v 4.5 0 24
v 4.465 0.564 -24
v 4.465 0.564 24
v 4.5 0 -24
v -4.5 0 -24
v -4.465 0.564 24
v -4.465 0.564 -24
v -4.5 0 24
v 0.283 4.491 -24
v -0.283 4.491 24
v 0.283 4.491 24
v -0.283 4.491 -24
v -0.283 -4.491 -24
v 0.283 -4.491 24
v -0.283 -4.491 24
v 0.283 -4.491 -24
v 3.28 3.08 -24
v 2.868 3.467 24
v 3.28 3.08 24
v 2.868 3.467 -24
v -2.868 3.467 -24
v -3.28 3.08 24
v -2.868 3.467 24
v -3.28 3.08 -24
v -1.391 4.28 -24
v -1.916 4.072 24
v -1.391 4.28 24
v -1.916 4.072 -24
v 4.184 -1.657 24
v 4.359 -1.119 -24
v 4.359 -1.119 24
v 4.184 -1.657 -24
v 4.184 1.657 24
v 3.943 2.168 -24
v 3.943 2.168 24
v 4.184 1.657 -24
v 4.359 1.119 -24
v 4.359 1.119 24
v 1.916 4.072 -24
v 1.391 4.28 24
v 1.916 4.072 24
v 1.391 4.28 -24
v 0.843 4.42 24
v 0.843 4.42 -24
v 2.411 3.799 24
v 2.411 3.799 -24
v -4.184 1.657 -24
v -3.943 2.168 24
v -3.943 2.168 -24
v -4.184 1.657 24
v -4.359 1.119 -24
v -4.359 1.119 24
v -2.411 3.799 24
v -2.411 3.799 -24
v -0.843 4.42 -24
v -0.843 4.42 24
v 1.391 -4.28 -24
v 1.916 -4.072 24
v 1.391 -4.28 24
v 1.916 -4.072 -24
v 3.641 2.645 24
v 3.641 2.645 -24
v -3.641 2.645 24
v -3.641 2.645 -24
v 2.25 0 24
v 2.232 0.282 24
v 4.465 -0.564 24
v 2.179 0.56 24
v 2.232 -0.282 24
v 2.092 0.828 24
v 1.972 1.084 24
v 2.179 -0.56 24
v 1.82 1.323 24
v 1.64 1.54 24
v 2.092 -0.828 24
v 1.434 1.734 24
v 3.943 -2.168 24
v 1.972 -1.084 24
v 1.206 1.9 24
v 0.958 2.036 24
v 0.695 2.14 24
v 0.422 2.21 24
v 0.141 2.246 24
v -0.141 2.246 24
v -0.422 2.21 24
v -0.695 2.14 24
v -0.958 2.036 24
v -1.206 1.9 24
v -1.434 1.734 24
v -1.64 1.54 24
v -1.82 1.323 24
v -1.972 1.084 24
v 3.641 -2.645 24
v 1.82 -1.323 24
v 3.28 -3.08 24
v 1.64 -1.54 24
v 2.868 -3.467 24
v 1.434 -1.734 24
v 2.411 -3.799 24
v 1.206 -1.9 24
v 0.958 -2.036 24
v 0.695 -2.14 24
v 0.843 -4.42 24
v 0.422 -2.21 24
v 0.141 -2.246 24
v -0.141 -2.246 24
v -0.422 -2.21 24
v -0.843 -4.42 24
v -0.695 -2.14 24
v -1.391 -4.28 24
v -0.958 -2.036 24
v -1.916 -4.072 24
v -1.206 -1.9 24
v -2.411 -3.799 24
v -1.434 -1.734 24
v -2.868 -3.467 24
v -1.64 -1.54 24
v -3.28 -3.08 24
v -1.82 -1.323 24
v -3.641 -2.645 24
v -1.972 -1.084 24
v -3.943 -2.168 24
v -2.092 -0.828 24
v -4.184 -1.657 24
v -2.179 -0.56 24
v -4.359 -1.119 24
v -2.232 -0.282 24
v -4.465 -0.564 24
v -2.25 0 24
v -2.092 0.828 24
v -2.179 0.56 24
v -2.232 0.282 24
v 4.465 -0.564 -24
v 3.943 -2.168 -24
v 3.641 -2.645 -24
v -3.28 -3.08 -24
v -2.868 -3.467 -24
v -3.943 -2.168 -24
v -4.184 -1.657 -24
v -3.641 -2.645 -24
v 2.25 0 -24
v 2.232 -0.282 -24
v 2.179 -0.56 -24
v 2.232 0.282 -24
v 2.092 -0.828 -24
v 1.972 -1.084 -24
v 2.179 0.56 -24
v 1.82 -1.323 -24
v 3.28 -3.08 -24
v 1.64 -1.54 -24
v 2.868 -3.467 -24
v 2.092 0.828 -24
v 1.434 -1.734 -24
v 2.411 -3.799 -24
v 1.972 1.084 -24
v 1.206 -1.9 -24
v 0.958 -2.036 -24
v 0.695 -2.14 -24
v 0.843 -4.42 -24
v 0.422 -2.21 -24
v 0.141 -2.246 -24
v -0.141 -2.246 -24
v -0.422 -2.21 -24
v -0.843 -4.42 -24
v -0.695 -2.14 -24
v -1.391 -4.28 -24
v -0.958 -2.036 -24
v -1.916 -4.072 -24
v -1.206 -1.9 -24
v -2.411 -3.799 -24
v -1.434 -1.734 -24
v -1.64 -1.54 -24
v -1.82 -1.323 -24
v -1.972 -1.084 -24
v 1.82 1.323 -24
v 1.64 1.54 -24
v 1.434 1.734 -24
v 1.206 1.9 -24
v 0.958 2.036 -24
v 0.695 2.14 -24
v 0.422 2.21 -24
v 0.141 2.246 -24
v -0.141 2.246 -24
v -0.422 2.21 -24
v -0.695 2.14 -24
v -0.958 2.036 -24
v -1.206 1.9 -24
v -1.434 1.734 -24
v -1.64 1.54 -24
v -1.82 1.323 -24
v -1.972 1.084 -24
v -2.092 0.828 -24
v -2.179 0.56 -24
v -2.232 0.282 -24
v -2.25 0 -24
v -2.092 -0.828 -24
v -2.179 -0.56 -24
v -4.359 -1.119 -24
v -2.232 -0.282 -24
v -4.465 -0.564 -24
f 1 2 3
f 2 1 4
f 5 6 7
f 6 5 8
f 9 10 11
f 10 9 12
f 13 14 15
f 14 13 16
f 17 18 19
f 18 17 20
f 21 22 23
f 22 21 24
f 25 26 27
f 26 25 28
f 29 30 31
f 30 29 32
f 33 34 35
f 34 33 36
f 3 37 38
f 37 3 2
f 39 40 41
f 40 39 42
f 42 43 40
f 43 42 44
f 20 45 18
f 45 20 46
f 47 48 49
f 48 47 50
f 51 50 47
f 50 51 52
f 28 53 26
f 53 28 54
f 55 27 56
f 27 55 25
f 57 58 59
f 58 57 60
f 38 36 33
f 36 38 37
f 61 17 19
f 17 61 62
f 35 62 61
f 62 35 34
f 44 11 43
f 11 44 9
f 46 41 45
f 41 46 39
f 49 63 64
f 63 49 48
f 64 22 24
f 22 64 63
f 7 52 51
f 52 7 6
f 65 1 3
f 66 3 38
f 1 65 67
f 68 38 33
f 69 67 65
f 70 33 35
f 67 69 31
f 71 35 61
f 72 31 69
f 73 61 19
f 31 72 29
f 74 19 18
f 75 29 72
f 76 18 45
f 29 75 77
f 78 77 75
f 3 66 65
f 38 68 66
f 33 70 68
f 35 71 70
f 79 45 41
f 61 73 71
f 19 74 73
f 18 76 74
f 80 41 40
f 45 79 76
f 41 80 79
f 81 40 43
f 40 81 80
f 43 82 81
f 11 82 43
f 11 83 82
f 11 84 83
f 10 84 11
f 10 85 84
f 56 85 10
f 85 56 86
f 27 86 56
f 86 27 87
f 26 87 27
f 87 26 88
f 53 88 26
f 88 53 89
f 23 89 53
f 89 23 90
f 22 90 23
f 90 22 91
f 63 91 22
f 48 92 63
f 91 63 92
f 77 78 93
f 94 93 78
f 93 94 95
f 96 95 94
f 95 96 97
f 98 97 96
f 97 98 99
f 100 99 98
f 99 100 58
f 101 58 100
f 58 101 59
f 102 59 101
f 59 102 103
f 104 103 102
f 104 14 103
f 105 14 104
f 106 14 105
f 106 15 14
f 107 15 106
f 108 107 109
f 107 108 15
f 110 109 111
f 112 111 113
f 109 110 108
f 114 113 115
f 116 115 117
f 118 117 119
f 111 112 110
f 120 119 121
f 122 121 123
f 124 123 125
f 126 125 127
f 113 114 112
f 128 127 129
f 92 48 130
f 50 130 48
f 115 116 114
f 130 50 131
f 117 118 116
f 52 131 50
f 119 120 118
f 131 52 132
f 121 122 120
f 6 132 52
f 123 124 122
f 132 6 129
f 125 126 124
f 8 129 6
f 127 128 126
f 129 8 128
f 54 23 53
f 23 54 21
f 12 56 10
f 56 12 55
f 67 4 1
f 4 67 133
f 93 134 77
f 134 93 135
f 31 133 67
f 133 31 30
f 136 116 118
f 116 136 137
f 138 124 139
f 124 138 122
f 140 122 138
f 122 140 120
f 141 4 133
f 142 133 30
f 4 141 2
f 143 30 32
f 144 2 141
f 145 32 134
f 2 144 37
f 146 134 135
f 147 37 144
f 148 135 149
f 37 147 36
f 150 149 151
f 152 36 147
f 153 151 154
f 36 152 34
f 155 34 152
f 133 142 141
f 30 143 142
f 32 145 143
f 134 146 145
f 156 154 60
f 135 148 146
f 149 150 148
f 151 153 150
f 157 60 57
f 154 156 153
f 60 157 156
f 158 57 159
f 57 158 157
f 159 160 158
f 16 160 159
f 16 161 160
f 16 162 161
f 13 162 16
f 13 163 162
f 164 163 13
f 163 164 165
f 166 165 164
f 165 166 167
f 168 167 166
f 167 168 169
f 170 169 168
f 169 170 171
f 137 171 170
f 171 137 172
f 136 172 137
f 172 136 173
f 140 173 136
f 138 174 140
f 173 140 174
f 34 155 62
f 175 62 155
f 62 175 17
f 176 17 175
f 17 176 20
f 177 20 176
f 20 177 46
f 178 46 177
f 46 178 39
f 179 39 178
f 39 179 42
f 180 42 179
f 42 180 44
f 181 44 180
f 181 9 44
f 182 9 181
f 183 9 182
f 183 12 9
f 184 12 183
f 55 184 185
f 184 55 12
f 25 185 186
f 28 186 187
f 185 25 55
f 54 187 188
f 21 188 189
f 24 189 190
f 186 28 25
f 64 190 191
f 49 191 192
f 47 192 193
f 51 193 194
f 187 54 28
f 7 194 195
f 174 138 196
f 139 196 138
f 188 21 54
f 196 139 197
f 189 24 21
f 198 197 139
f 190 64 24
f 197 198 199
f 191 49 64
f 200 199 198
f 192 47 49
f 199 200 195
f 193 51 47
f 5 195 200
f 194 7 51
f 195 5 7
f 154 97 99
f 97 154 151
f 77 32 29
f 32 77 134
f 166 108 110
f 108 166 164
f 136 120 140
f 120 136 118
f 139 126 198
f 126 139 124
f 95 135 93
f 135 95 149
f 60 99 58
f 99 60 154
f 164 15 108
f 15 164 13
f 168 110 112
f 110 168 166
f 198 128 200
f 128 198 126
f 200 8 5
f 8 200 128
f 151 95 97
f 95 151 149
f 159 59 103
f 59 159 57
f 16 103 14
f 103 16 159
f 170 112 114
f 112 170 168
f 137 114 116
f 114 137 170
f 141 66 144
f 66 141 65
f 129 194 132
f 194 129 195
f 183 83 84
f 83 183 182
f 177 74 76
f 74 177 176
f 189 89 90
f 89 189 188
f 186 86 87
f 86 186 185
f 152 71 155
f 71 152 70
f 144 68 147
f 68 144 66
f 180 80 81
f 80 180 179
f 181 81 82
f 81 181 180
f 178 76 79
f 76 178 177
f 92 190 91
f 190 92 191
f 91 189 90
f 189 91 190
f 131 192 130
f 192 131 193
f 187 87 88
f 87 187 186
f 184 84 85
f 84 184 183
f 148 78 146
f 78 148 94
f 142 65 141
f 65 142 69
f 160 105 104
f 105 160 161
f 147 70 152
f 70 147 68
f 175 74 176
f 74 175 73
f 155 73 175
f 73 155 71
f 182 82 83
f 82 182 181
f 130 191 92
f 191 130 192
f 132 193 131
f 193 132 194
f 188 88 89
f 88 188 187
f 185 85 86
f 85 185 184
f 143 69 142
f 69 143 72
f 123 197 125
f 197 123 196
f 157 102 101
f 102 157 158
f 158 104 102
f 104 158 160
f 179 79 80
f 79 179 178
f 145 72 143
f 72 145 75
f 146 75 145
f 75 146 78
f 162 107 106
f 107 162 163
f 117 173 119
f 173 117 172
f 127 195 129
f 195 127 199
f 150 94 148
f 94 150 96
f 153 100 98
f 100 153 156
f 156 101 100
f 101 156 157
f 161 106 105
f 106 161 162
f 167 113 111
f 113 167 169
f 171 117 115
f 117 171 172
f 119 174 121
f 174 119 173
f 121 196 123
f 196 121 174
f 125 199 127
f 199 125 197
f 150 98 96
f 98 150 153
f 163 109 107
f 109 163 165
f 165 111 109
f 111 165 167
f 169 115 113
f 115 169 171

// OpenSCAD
$fn = 50;


difference() {
	union() {
		translate(v = [0, 0, -24.0000000000]) {
			cylinder(h = 48, r = 4.5000000000);
		}
	}
	union() {
		translate(v = [0, 0, -100.0000000000]) {
			cylinder(h = 200, r = 2.2500000000);
		}
	}
}
